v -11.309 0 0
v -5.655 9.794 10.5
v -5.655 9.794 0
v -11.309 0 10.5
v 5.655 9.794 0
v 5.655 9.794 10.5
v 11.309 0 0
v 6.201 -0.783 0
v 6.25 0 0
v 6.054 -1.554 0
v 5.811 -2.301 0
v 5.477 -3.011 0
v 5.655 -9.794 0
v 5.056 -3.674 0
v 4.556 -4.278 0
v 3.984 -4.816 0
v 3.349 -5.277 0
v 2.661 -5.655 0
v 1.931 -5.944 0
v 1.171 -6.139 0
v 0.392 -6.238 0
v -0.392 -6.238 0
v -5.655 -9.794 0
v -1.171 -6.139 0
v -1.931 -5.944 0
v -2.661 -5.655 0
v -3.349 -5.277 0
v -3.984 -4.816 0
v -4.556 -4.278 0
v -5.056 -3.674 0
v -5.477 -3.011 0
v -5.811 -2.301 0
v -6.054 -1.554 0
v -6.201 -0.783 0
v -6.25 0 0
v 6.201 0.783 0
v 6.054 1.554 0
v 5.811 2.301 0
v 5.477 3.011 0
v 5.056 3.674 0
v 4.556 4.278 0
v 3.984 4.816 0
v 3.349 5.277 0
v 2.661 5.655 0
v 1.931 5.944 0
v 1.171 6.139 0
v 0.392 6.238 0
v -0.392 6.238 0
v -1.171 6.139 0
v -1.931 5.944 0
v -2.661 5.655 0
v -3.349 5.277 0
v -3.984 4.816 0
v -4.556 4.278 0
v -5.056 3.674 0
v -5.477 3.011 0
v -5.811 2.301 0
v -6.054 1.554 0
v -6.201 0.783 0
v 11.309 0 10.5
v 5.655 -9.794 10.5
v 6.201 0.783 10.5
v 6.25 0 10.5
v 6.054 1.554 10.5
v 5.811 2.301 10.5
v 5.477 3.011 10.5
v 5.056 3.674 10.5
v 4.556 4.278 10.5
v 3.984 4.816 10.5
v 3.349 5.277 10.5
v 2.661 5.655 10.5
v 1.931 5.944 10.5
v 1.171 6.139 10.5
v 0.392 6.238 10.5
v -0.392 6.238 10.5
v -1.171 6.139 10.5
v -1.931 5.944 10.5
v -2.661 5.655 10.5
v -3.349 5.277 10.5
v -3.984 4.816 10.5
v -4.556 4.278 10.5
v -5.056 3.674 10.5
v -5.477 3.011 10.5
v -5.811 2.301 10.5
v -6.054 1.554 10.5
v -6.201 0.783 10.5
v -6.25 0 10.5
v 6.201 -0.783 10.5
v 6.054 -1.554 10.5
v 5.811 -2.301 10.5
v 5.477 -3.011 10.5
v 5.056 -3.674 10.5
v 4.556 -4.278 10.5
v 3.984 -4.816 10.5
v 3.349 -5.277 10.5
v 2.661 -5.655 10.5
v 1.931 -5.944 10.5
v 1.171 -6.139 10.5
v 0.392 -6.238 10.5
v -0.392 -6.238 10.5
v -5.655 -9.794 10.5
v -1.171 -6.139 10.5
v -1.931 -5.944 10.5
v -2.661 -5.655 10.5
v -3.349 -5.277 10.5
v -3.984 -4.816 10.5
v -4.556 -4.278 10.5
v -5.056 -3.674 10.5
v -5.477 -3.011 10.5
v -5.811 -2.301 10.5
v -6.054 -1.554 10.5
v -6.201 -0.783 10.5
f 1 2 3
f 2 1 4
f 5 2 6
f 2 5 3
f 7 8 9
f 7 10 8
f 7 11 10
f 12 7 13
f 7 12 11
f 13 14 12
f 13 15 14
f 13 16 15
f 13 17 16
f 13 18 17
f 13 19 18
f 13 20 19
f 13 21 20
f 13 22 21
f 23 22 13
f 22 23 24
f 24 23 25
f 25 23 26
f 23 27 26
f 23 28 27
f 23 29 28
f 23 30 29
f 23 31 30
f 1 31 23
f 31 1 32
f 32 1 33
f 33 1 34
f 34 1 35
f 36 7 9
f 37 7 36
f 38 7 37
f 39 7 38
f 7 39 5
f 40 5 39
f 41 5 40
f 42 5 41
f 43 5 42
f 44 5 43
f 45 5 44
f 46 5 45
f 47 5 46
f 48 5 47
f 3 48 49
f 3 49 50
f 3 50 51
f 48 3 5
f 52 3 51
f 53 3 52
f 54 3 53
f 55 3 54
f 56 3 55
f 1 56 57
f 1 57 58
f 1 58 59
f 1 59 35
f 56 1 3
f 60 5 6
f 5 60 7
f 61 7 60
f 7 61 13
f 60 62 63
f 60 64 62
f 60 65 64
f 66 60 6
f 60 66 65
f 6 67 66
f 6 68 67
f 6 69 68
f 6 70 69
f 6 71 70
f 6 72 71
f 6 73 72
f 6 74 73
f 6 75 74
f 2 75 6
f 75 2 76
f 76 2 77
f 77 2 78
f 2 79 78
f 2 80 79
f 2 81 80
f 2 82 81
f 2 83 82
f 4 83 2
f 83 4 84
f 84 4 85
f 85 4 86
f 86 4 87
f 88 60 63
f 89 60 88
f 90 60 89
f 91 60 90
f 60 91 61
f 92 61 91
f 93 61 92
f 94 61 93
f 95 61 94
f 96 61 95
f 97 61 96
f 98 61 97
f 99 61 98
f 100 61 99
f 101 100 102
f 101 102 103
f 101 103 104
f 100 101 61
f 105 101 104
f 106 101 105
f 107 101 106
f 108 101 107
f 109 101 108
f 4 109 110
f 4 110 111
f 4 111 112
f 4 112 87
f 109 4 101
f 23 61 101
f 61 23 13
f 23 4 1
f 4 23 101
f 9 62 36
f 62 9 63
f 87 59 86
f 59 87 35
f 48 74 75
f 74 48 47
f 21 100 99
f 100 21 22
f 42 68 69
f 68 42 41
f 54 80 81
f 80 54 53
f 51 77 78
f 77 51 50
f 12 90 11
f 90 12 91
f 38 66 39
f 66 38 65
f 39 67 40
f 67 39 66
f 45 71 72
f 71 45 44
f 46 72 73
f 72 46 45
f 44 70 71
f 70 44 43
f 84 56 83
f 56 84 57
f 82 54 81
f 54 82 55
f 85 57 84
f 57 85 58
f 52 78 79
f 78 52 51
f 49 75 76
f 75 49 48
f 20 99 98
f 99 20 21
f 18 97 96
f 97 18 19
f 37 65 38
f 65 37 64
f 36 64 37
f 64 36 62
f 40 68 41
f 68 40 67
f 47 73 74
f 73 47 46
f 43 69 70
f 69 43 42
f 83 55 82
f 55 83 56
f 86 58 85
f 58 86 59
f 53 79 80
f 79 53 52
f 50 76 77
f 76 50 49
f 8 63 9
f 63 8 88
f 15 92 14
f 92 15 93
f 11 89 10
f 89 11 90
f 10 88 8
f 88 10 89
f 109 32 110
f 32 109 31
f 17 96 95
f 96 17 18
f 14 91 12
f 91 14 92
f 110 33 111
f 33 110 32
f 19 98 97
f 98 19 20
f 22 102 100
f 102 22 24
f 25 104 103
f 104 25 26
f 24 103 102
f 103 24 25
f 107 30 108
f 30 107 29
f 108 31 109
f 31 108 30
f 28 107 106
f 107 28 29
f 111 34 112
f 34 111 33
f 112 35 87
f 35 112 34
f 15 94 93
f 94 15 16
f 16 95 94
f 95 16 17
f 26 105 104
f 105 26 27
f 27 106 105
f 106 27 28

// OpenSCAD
$fn = 50;


difference() {
	union() {
		translate(v = [0, 0, 0]) {
			rotate(a = [0, 0, 0]) {
				translate(v = [0, 0, 0]) {
					rotate(a = [0, 0, 0]) {
						linear_extrude(height = 10.5000000000) {
							polygon(points = [[11.3092000000, 0.0000000000], [5.6546000000, 9.7940544965], [-5.6546000000, 9.7940544965], [-11.3092000000, 0.0000000000], [-5.6546000000, -9.7940544965], [5.6546000000, -9.7940544965]]);
						}
					}
				}
			}
		}
	}
	union() {
		#translate(v = [0, 0, -10]) {
			rotate(a = [0, 0, 0]) {
				cylinder(h = 100, r = 6.2500000000);
			}
		}
	}
}
